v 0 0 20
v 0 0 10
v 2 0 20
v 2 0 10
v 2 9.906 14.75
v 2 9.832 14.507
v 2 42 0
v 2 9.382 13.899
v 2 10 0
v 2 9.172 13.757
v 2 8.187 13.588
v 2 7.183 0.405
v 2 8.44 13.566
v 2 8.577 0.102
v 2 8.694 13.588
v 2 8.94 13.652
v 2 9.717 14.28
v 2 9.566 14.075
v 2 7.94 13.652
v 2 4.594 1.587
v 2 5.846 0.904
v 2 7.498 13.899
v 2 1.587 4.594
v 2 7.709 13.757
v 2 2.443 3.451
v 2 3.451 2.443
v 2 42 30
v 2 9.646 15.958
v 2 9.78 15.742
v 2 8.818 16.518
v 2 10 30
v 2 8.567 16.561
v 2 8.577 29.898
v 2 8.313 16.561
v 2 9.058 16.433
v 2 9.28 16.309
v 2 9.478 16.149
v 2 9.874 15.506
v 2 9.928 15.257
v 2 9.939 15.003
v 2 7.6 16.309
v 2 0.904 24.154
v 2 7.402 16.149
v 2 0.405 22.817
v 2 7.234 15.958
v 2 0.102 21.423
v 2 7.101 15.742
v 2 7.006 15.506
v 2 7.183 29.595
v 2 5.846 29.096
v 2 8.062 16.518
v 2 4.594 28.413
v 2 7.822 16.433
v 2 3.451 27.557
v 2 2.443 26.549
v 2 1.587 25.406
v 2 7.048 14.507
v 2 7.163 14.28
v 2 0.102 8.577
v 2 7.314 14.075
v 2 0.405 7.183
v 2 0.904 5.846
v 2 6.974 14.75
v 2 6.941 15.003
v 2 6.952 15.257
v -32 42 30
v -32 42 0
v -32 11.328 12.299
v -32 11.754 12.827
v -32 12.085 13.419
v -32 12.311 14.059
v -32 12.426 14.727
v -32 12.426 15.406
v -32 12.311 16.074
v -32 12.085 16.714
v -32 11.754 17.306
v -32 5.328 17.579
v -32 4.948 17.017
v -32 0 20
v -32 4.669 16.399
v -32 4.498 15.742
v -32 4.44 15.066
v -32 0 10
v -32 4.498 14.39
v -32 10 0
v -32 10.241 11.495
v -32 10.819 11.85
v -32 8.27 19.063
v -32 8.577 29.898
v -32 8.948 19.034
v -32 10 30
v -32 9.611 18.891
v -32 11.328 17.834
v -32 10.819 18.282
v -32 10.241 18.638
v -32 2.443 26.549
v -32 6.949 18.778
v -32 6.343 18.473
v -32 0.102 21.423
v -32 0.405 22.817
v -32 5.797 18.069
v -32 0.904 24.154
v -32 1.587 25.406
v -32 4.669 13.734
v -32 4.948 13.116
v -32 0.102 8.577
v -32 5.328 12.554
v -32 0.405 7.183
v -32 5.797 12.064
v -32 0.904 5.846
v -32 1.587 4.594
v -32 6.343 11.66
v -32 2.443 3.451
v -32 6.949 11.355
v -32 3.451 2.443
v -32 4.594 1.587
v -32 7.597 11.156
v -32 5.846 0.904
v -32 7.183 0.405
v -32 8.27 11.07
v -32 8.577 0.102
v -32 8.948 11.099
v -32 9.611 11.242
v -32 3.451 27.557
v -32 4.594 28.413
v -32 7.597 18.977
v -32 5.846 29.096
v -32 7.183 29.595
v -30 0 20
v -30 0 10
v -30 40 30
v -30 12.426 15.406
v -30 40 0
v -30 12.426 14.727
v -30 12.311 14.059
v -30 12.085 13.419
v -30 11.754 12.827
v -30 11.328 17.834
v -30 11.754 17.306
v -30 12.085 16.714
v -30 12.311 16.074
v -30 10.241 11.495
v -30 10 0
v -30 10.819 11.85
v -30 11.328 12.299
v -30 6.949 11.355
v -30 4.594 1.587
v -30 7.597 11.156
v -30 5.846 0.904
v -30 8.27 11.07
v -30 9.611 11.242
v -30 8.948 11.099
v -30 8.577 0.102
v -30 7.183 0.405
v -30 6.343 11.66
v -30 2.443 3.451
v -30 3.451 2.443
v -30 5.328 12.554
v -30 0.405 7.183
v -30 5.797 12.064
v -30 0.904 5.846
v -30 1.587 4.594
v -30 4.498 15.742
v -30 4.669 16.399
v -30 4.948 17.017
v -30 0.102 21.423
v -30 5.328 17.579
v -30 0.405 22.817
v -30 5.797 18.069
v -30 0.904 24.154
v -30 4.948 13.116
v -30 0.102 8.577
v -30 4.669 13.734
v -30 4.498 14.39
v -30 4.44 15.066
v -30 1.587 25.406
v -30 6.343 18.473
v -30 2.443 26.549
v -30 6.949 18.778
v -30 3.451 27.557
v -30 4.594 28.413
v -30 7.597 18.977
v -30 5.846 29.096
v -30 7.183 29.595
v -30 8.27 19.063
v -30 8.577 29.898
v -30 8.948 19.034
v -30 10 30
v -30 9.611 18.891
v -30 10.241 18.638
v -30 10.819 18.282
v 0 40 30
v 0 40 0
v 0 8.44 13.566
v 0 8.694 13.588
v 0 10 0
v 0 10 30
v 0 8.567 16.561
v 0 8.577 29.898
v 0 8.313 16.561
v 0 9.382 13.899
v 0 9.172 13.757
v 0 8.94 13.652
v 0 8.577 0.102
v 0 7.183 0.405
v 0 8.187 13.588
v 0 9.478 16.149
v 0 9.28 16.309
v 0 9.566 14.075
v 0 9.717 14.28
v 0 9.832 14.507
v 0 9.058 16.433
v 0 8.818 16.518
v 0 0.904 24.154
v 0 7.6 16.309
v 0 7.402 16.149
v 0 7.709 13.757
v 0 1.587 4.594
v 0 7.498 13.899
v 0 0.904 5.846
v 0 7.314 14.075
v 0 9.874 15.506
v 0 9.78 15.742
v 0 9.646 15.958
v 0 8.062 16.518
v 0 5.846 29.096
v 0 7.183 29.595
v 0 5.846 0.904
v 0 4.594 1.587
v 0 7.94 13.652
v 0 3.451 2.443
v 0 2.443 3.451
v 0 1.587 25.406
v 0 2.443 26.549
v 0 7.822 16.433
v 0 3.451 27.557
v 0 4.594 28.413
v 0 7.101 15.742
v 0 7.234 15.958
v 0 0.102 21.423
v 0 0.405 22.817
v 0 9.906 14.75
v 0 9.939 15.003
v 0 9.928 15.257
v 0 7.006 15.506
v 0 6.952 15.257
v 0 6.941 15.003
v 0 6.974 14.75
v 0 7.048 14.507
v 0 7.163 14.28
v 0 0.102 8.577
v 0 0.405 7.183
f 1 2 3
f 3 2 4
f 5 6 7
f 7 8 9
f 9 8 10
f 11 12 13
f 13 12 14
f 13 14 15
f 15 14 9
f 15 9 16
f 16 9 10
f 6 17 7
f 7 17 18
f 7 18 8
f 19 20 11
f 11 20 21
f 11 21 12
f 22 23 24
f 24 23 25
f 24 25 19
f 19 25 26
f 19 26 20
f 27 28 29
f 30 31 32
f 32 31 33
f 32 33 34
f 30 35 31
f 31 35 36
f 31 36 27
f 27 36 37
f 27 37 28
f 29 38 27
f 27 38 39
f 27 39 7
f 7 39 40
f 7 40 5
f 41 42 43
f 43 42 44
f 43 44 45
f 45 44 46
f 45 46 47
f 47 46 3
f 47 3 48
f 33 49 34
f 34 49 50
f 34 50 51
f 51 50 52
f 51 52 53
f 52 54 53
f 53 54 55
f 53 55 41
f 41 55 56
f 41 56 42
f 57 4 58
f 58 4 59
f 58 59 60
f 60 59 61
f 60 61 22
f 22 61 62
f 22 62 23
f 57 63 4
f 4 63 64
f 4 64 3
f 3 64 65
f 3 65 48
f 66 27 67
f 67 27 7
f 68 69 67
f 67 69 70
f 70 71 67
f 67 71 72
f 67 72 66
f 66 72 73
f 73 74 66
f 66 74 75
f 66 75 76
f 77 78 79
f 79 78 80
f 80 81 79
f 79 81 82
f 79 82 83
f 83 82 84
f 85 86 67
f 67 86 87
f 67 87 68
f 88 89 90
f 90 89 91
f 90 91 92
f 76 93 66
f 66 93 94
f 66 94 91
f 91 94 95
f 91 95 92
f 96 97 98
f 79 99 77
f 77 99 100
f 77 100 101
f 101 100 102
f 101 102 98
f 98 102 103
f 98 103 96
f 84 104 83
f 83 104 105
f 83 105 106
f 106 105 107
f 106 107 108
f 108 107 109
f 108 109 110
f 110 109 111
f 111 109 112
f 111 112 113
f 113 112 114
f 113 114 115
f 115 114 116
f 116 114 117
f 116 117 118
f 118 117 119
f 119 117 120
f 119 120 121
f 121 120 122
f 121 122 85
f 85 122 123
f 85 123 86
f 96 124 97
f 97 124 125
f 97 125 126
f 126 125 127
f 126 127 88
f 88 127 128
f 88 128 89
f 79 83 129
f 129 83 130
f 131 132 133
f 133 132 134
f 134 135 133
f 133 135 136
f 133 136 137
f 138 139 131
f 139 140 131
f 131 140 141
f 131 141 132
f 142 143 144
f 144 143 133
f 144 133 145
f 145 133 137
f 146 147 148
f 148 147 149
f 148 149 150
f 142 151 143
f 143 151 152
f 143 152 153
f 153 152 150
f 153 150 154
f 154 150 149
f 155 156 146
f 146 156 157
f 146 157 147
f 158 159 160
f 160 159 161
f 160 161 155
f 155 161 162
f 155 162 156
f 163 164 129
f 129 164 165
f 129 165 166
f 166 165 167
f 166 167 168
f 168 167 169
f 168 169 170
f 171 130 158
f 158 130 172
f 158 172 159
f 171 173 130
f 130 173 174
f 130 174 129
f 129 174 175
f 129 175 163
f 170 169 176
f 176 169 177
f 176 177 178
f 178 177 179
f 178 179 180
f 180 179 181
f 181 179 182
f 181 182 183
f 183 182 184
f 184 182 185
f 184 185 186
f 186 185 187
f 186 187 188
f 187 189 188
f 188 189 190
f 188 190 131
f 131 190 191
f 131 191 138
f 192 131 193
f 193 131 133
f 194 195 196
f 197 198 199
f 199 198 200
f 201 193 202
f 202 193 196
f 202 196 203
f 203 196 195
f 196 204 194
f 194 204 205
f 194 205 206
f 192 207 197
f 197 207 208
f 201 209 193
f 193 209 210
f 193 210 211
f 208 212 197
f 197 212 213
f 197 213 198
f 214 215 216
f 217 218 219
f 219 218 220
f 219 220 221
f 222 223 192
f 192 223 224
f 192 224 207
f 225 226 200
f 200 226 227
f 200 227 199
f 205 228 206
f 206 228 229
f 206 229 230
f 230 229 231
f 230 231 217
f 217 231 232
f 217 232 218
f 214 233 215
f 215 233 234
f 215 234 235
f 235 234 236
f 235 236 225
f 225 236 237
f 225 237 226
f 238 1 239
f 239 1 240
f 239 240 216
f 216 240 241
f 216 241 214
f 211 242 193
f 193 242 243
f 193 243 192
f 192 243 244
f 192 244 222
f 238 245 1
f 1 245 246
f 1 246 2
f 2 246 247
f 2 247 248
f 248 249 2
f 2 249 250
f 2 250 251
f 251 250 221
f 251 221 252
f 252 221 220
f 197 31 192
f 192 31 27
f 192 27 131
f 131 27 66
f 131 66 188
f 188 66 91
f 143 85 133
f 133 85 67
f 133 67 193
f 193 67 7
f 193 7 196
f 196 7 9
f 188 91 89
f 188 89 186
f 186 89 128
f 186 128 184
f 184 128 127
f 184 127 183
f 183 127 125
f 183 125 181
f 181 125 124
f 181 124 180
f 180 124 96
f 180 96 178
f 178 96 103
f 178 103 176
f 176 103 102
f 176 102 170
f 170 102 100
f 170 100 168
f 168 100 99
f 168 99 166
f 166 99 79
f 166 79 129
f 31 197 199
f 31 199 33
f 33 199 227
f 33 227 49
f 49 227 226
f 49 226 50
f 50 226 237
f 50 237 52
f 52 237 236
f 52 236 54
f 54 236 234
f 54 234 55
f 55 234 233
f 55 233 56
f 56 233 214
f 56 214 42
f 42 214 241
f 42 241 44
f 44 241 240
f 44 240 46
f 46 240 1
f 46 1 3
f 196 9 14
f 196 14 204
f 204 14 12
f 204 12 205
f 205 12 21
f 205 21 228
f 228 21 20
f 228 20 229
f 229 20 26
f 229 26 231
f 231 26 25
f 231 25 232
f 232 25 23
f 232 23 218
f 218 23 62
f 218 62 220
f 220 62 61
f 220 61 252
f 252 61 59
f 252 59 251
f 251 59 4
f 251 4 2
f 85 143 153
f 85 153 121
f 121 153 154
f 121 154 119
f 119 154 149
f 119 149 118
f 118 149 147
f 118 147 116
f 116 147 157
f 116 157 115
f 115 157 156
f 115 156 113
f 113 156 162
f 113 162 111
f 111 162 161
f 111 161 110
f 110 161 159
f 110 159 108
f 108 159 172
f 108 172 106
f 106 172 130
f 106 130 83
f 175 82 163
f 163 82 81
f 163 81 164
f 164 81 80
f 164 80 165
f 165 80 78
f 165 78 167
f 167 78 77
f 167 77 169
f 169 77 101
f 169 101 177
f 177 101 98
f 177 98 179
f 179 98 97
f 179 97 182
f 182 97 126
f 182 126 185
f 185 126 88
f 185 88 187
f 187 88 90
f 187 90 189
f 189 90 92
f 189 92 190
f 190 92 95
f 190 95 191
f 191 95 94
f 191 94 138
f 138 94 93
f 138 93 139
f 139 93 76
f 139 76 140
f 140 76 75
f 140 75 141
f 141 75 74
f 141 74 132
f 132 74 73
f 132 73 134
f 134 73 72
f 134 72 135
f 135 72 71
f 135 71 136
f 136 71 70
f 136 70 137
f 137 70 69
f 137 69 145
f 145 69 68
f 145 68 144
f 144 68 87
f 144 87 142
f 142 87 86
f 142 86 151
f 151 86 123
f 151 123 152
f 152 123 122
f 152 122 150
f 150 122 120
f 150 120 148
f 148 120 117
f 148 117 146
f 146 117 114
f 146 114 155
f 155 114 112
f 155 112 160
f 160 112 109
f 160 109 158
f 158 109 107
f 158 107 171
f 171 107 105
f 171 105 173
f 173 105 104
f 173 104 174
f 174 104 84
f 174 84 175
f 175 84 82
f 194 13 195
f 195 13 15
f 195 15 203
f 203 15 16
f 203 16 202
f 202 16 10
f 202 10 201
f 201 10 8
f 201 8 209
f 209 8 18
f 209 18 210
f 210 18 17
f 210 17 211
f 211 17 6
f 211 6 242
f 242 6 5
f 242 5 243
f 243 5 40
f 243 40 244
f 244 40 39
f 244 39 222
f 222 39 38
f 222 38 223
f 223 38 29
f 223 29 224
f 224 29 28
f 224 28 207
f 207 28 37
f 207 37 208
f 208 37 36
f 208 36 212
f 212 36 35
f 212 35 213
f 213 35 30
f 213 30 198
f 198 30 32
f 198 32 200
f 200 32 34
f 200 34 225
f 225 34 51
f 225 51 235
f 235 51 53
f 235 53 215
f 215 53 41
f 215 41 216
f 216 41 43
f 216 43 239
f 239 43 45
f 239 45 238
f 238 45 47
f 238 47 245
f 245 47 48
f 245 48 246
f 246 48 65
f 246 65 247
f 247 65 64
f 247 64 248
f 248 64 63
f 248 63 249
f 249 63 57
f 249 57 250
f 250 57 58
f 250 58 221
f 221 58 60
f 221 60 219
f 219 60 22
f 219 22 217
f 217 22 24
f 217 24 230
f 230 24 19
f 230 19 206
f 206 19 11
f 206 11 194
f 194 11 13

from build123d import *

# Parameters (mm, degrees)
BOSS_EXTRUDE1_DEPTH = 30
FILLET1_R           = 10
SKETCH4_R           = 4
CUT_EXTRUDE1_DEPTH  = 3
SKETCH5_R           = 1.5
CUT_EXTRUDE2_DEPTH  = 3


with BuildPart() as part:
    # Sketch1 → Boss-Extrude1 (new body)
    with BuildSketch(Plane.XY):
        Polygon((0, 0), (0, 40), (-30, 40), (-30, 0), (-32, 0), (-32, 42), (2, 42), (2, 0), align=None)
    extrude(amount=BOSS_EXTRUDE1_DEPTH)

    # Fillet1
    fillet1_edges = [part.edges().sort_by_distance(p)[0] for p in [
        (1, 0, 0),
        (-31, 0, 30),
        (1, 0, 30),
        (-31, 0, 0),
    ]]
    fillet(fillet1_edges, radius=FILLET1_R)

    # Sketch4 → Cut-Extrude1 (cut)
    with BuildSketch(Plane.ZY.offset(32)):
        with Locations(Location((15.066442129, 8.440123405, 0), (0, 0, 270))):
            Circle(SKETCH4_R)
    extrude(amount=-CUT_EXTRUDE1_DEPTH, mode=Mode.SUBTRACT)

    # Sketch5 → Cut-Extrude2 (cut)
    with BuildSketch(Plane(origin=(2, 0, 0), x_dir=(0, 0, -1), z_dir=(1, 0, 0))):
        with Locations((-15.066442129, 8.440123405)):
            Circle(SKETCH5_R)
    extrude(amount=-CUT_EXTRUDE2_DEPTH, mode=Mode.SUBTRACT)


solid = part.part
